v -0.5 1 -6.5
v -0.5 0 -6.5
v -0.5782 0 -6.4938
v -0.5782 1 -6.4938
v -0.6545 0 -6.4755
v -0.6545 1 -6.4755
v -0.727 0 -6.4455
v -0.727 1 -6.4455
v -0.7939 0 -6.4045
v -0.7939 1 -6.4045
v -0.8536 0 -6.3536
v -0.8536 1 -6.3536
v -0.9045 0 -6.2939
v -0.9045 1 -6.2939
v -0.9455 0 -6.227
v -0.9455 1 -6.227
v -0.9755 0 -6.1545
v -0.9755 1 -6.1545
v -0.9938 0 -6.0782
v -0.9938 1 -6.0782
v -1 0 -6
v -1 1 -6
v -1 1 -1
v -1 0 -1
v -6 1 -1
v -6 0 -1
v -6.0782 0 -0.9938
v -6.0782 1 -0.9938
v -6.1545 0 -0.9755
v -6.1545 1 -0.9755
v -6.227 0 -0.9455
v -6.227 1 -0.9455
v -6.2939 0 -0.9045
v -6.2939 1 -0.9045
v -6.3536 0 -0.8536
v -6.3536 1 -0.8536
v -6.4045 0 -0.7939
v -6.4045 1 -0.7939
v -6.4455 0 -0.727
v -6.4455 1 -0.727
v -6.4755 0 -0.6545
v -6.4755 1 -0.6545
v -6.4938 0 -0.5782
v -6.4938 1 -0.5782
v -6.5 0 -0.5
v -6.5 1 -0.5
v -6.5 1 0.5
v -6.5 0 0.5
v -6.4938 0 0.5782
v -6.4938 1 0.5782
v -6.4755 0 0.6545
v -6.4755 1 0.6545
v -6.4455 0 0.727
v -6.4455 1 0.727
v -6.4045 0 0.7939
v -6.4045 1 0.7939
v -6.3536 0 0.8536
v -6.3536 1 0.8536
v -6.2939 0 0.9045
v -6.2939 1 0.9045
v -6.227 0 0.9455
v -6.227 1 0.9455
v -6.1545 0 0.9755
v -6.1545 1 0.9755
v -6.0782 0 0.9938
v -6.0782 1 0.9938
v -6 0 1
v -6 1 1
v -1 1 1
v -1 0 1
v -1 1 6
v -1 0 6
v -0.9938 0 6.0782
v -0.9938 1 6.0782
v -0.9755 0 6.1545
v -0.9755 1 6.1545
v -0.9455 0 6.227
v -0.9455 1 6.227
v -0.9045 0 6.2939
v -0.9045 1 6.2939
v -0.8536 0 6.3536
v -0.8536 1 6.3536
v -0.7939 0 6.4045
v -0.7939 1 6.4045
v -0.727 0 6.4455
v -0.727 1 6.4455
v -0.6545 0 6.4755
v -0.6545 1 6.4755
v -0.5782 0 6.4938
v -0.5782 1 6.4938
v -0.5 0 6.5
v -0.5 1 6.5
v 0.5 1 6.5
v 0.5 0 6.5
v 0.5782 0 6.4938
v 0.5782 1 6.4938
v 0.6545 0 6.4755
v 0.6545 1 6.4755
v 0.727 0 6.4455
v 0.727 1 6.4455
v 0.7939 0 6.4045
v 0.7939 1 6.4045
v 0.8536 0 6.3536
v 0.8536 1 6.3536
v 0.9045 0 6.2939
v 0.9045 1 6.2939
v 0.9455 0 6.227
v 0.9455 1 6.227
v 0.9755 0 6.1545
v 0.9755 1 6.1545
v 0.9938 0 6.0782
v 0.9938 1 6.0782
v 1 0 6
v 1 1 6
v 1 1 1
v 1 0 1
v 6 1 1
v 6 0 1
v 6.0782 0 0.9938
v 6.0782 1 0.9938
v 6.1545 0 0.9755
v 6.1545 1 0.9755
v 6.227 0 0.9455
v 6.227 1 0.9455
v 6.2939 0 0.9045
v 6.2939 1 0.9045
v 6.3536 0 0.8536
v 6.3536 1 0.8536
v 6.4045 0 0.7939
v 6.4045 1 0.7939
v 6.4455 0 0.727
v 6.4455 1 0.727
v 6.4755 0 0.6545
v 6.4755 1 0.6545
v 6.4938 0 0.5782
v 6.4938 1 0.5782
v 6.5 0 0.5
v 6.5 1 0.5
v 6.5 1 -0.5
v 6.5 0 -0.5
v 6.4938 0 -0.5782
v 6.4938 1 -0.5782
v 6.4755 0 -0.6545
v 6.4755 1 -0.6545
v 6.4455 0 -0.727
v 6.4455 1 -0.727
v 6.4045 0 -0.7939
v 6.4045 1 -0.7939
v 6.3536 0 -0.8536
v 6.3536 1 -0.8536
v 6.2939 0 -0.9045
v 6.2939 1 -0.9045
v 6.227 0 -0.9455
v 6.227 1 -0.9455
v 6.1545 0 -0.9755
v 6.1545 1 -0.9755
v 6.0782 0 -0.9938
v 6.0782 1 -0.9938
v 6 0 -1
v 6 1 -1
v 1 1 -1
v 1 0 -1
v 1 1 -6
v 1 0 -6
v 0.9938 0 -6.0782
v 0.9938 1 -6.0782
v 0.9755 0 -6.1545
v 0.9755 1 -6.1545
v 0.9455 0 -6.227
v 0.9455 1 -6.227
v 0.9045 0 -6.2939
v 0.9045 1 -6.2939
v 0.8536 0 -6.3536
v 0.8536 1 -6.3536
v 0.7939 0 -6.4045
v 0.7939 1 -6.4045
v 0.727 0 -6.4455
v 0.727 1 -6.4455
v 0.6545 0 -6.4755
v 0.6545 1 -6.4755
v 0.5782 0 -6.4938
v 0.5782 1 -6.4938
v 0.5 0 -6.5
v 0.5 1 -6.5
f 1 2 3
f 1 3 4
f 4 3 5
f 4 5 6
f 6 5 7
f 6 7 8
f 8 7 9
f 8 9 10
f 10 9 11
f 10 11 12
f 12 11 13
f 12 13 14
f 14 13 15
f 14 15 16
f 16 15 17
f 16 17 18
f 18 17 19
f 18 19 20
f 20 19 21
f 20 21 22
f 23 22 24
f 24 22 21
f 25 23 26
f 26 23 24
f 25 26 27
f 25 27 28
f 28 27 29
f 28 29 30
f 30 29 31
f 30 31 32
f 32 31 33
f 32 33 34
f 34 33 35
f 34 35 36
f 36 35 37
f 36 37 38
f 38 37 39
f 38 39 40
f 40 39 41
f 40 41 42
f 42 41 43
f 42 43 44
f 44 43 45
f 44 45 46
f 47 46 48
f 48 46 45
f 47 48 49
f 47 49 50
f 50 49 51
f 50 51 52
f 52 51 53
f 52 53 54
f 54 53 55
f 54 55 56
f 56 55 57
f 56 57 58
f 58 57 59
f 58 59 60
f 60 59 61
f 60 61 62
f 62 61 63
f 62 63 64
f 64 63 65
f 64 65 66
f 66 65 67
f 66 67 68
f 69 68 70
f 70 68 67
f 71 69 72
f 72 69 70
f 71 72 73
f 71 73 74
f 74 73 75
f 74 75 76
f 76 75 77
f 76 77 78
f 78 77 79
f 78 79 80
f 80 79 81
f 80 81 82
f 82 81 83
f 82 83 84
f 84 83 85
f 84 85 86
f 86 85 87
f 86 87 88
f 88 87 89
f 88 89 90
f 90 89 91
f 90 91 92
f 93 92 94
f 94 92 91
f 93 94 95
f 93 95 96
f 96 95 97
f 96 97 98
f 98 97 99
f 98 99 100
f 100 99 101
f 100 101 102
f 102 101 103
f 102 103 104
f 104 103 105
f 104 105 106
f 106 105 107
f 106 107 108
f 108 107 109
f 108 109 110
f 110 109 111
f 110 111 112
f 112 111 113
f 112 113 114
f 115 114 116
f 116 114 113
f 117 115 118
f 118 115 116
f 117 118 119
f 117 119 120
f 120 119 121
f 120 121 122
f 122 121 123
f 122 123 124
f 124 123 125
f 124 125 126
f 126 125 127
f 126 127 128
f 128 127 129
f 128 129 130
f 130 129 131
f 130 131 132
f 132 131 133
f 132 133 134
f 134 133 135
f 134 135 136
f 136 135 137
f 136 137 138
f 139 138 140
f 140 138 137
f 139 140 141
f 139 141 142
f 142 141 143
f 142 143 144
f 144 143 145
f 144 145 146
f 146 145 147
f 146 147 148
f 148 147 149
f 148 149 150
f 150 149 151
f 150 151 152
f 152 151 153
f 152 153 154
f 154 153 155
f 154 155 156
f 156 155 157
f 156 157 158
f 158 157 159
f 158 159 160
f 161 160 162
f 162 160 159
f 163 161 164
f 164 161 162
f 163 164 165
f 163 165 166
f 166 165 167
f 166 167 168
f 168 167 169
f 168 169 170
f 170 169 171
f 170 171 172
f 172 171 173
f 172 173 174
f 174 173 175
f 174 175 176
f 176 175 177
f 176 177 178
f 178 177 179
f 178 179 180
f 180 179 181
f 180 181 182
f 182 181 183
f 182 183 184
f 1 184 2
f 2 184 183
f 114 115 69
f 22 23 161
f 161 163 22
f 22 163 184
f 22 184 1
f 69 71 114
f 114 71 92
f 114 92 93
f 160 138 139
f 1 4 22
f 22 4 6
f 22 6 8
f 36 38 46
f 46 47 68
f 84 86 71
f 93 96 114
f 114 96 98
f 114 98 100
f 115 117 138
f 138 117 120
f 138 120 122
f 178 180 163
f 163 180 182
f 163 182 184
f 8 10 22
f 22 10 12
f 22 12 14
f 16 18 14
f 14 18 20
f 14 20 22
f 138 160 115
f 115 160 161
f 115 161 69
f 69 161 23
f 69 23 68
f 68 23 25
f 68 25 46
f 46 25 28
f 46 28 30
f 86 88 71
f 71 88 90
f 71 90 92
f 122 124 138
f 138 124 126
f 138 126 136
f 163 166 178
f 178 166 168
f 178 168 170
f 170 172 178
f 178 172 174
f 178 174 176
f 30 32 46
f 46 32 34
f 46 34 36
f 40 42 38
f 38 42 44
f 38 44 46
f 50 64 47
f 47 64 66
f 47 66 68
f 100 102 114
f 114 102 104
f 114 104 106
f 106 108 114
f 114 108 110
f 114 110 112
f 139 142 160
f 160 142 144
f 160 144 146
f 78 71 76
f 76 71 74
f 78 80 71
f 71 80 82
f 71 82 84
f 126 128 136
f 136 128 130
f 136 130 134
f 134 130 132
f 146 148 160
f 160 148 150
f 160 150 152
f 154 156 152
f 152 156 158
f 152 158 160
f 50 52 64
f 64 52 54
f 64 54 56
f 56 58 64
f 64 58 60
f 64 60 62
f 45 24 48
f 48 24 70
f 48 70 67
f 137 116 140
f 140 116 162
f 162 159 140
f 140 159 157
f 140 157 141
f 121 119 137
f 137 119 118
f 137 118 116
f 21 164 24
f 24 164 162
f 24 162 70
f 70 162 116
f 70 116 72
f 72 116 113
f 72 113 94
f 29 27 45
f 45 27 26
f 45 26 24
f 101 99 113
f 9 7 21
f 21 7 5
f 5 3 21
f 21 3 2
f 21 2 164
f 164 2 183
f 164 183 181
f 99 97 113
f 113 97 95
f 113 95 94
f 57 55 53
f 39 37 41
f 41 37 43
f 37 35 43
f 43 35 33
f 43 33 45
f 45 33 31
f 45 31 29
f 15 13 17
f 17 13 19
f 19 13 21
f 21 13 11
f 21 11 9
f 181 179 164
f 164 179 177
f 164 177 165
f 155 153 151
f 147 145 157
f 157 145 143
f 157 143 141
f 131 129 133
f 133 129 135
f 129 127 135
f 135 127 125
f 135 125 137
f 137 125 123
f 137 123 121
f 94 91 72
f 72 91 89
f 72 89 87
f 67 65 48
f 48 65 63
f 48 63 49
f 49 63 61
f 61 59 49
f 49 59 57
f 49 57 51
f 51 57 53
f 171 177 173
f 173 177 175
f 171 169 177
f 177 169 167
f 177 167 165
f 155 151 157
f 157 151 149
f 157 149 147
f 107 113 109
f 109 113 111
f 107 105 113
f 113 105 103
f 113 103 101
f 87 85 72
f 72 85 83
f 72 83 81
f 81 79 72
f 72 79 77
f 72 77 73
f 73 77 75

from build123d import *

# Parameters (mm, degrees)
BOSS_EXTRUDE1_DEPTH = 1


with BuildPart() as part:
    # Sketch2 → Boss-Extrude1 (new body)
    with BuildSketch(Plane(origin=(0, 0, 0), x_dir=(1, 0, 0), z_dir=(0, 1, 0))):
        with BuildLine():
            Line((-6, 1), (-1, 1))
            Line((-1, 1), (-1, 6))
            ThreePointArc((-1, 6), (-0.853553391, 6.353553391), (-0.5, 6.5))
            Line((-0.5, 6.5), (0.5, 6.5))
            ThreePointArc((0.5, 6.5), (0.853553391, 6.353553391), (1, 6))
            Line((1, 6), (1, 1))
            Line((1, 1), (6, 1))
            ThreePointArc((6, 1), (6.353553391, 0.853553391), (6.5, 0.5))
            Line((6.5, 0.5), (6.5, -0.5))
            ThreePointArc((6.5, -0.5), (6.353553391, -0.853553391), (6, -1))
            Line((6, -1), (1, -1))
            Line((1, -1), (1, -6))
            ThreePointArc((1, -6), (0.853553391, -6.353553391), (0.5, -6.5))
            Line((0.5, -6.5), (-0.5, -6.5))
            ThreePointArc((-0.5, -6.5), (-0.853553391, -6.353553391), (-1, -6))
            Line((-1, -6), (-1, -1))
            Line((-1, -1), (-6, -1))
            ThreePointArc((-6, -1), (-6.353553391, -0.853553391), (-6.5, -0.5))
            Line((-6.5, -0.5), (-6.5, 0.5))
            ThreePointArc((-6.5, 0.5), (-6.353553391, 0.853553391), (-6, 1))
        make_face()
    extrude(amount=BOSS_EXTRUDE1_DEPTH)


solid = part.part
